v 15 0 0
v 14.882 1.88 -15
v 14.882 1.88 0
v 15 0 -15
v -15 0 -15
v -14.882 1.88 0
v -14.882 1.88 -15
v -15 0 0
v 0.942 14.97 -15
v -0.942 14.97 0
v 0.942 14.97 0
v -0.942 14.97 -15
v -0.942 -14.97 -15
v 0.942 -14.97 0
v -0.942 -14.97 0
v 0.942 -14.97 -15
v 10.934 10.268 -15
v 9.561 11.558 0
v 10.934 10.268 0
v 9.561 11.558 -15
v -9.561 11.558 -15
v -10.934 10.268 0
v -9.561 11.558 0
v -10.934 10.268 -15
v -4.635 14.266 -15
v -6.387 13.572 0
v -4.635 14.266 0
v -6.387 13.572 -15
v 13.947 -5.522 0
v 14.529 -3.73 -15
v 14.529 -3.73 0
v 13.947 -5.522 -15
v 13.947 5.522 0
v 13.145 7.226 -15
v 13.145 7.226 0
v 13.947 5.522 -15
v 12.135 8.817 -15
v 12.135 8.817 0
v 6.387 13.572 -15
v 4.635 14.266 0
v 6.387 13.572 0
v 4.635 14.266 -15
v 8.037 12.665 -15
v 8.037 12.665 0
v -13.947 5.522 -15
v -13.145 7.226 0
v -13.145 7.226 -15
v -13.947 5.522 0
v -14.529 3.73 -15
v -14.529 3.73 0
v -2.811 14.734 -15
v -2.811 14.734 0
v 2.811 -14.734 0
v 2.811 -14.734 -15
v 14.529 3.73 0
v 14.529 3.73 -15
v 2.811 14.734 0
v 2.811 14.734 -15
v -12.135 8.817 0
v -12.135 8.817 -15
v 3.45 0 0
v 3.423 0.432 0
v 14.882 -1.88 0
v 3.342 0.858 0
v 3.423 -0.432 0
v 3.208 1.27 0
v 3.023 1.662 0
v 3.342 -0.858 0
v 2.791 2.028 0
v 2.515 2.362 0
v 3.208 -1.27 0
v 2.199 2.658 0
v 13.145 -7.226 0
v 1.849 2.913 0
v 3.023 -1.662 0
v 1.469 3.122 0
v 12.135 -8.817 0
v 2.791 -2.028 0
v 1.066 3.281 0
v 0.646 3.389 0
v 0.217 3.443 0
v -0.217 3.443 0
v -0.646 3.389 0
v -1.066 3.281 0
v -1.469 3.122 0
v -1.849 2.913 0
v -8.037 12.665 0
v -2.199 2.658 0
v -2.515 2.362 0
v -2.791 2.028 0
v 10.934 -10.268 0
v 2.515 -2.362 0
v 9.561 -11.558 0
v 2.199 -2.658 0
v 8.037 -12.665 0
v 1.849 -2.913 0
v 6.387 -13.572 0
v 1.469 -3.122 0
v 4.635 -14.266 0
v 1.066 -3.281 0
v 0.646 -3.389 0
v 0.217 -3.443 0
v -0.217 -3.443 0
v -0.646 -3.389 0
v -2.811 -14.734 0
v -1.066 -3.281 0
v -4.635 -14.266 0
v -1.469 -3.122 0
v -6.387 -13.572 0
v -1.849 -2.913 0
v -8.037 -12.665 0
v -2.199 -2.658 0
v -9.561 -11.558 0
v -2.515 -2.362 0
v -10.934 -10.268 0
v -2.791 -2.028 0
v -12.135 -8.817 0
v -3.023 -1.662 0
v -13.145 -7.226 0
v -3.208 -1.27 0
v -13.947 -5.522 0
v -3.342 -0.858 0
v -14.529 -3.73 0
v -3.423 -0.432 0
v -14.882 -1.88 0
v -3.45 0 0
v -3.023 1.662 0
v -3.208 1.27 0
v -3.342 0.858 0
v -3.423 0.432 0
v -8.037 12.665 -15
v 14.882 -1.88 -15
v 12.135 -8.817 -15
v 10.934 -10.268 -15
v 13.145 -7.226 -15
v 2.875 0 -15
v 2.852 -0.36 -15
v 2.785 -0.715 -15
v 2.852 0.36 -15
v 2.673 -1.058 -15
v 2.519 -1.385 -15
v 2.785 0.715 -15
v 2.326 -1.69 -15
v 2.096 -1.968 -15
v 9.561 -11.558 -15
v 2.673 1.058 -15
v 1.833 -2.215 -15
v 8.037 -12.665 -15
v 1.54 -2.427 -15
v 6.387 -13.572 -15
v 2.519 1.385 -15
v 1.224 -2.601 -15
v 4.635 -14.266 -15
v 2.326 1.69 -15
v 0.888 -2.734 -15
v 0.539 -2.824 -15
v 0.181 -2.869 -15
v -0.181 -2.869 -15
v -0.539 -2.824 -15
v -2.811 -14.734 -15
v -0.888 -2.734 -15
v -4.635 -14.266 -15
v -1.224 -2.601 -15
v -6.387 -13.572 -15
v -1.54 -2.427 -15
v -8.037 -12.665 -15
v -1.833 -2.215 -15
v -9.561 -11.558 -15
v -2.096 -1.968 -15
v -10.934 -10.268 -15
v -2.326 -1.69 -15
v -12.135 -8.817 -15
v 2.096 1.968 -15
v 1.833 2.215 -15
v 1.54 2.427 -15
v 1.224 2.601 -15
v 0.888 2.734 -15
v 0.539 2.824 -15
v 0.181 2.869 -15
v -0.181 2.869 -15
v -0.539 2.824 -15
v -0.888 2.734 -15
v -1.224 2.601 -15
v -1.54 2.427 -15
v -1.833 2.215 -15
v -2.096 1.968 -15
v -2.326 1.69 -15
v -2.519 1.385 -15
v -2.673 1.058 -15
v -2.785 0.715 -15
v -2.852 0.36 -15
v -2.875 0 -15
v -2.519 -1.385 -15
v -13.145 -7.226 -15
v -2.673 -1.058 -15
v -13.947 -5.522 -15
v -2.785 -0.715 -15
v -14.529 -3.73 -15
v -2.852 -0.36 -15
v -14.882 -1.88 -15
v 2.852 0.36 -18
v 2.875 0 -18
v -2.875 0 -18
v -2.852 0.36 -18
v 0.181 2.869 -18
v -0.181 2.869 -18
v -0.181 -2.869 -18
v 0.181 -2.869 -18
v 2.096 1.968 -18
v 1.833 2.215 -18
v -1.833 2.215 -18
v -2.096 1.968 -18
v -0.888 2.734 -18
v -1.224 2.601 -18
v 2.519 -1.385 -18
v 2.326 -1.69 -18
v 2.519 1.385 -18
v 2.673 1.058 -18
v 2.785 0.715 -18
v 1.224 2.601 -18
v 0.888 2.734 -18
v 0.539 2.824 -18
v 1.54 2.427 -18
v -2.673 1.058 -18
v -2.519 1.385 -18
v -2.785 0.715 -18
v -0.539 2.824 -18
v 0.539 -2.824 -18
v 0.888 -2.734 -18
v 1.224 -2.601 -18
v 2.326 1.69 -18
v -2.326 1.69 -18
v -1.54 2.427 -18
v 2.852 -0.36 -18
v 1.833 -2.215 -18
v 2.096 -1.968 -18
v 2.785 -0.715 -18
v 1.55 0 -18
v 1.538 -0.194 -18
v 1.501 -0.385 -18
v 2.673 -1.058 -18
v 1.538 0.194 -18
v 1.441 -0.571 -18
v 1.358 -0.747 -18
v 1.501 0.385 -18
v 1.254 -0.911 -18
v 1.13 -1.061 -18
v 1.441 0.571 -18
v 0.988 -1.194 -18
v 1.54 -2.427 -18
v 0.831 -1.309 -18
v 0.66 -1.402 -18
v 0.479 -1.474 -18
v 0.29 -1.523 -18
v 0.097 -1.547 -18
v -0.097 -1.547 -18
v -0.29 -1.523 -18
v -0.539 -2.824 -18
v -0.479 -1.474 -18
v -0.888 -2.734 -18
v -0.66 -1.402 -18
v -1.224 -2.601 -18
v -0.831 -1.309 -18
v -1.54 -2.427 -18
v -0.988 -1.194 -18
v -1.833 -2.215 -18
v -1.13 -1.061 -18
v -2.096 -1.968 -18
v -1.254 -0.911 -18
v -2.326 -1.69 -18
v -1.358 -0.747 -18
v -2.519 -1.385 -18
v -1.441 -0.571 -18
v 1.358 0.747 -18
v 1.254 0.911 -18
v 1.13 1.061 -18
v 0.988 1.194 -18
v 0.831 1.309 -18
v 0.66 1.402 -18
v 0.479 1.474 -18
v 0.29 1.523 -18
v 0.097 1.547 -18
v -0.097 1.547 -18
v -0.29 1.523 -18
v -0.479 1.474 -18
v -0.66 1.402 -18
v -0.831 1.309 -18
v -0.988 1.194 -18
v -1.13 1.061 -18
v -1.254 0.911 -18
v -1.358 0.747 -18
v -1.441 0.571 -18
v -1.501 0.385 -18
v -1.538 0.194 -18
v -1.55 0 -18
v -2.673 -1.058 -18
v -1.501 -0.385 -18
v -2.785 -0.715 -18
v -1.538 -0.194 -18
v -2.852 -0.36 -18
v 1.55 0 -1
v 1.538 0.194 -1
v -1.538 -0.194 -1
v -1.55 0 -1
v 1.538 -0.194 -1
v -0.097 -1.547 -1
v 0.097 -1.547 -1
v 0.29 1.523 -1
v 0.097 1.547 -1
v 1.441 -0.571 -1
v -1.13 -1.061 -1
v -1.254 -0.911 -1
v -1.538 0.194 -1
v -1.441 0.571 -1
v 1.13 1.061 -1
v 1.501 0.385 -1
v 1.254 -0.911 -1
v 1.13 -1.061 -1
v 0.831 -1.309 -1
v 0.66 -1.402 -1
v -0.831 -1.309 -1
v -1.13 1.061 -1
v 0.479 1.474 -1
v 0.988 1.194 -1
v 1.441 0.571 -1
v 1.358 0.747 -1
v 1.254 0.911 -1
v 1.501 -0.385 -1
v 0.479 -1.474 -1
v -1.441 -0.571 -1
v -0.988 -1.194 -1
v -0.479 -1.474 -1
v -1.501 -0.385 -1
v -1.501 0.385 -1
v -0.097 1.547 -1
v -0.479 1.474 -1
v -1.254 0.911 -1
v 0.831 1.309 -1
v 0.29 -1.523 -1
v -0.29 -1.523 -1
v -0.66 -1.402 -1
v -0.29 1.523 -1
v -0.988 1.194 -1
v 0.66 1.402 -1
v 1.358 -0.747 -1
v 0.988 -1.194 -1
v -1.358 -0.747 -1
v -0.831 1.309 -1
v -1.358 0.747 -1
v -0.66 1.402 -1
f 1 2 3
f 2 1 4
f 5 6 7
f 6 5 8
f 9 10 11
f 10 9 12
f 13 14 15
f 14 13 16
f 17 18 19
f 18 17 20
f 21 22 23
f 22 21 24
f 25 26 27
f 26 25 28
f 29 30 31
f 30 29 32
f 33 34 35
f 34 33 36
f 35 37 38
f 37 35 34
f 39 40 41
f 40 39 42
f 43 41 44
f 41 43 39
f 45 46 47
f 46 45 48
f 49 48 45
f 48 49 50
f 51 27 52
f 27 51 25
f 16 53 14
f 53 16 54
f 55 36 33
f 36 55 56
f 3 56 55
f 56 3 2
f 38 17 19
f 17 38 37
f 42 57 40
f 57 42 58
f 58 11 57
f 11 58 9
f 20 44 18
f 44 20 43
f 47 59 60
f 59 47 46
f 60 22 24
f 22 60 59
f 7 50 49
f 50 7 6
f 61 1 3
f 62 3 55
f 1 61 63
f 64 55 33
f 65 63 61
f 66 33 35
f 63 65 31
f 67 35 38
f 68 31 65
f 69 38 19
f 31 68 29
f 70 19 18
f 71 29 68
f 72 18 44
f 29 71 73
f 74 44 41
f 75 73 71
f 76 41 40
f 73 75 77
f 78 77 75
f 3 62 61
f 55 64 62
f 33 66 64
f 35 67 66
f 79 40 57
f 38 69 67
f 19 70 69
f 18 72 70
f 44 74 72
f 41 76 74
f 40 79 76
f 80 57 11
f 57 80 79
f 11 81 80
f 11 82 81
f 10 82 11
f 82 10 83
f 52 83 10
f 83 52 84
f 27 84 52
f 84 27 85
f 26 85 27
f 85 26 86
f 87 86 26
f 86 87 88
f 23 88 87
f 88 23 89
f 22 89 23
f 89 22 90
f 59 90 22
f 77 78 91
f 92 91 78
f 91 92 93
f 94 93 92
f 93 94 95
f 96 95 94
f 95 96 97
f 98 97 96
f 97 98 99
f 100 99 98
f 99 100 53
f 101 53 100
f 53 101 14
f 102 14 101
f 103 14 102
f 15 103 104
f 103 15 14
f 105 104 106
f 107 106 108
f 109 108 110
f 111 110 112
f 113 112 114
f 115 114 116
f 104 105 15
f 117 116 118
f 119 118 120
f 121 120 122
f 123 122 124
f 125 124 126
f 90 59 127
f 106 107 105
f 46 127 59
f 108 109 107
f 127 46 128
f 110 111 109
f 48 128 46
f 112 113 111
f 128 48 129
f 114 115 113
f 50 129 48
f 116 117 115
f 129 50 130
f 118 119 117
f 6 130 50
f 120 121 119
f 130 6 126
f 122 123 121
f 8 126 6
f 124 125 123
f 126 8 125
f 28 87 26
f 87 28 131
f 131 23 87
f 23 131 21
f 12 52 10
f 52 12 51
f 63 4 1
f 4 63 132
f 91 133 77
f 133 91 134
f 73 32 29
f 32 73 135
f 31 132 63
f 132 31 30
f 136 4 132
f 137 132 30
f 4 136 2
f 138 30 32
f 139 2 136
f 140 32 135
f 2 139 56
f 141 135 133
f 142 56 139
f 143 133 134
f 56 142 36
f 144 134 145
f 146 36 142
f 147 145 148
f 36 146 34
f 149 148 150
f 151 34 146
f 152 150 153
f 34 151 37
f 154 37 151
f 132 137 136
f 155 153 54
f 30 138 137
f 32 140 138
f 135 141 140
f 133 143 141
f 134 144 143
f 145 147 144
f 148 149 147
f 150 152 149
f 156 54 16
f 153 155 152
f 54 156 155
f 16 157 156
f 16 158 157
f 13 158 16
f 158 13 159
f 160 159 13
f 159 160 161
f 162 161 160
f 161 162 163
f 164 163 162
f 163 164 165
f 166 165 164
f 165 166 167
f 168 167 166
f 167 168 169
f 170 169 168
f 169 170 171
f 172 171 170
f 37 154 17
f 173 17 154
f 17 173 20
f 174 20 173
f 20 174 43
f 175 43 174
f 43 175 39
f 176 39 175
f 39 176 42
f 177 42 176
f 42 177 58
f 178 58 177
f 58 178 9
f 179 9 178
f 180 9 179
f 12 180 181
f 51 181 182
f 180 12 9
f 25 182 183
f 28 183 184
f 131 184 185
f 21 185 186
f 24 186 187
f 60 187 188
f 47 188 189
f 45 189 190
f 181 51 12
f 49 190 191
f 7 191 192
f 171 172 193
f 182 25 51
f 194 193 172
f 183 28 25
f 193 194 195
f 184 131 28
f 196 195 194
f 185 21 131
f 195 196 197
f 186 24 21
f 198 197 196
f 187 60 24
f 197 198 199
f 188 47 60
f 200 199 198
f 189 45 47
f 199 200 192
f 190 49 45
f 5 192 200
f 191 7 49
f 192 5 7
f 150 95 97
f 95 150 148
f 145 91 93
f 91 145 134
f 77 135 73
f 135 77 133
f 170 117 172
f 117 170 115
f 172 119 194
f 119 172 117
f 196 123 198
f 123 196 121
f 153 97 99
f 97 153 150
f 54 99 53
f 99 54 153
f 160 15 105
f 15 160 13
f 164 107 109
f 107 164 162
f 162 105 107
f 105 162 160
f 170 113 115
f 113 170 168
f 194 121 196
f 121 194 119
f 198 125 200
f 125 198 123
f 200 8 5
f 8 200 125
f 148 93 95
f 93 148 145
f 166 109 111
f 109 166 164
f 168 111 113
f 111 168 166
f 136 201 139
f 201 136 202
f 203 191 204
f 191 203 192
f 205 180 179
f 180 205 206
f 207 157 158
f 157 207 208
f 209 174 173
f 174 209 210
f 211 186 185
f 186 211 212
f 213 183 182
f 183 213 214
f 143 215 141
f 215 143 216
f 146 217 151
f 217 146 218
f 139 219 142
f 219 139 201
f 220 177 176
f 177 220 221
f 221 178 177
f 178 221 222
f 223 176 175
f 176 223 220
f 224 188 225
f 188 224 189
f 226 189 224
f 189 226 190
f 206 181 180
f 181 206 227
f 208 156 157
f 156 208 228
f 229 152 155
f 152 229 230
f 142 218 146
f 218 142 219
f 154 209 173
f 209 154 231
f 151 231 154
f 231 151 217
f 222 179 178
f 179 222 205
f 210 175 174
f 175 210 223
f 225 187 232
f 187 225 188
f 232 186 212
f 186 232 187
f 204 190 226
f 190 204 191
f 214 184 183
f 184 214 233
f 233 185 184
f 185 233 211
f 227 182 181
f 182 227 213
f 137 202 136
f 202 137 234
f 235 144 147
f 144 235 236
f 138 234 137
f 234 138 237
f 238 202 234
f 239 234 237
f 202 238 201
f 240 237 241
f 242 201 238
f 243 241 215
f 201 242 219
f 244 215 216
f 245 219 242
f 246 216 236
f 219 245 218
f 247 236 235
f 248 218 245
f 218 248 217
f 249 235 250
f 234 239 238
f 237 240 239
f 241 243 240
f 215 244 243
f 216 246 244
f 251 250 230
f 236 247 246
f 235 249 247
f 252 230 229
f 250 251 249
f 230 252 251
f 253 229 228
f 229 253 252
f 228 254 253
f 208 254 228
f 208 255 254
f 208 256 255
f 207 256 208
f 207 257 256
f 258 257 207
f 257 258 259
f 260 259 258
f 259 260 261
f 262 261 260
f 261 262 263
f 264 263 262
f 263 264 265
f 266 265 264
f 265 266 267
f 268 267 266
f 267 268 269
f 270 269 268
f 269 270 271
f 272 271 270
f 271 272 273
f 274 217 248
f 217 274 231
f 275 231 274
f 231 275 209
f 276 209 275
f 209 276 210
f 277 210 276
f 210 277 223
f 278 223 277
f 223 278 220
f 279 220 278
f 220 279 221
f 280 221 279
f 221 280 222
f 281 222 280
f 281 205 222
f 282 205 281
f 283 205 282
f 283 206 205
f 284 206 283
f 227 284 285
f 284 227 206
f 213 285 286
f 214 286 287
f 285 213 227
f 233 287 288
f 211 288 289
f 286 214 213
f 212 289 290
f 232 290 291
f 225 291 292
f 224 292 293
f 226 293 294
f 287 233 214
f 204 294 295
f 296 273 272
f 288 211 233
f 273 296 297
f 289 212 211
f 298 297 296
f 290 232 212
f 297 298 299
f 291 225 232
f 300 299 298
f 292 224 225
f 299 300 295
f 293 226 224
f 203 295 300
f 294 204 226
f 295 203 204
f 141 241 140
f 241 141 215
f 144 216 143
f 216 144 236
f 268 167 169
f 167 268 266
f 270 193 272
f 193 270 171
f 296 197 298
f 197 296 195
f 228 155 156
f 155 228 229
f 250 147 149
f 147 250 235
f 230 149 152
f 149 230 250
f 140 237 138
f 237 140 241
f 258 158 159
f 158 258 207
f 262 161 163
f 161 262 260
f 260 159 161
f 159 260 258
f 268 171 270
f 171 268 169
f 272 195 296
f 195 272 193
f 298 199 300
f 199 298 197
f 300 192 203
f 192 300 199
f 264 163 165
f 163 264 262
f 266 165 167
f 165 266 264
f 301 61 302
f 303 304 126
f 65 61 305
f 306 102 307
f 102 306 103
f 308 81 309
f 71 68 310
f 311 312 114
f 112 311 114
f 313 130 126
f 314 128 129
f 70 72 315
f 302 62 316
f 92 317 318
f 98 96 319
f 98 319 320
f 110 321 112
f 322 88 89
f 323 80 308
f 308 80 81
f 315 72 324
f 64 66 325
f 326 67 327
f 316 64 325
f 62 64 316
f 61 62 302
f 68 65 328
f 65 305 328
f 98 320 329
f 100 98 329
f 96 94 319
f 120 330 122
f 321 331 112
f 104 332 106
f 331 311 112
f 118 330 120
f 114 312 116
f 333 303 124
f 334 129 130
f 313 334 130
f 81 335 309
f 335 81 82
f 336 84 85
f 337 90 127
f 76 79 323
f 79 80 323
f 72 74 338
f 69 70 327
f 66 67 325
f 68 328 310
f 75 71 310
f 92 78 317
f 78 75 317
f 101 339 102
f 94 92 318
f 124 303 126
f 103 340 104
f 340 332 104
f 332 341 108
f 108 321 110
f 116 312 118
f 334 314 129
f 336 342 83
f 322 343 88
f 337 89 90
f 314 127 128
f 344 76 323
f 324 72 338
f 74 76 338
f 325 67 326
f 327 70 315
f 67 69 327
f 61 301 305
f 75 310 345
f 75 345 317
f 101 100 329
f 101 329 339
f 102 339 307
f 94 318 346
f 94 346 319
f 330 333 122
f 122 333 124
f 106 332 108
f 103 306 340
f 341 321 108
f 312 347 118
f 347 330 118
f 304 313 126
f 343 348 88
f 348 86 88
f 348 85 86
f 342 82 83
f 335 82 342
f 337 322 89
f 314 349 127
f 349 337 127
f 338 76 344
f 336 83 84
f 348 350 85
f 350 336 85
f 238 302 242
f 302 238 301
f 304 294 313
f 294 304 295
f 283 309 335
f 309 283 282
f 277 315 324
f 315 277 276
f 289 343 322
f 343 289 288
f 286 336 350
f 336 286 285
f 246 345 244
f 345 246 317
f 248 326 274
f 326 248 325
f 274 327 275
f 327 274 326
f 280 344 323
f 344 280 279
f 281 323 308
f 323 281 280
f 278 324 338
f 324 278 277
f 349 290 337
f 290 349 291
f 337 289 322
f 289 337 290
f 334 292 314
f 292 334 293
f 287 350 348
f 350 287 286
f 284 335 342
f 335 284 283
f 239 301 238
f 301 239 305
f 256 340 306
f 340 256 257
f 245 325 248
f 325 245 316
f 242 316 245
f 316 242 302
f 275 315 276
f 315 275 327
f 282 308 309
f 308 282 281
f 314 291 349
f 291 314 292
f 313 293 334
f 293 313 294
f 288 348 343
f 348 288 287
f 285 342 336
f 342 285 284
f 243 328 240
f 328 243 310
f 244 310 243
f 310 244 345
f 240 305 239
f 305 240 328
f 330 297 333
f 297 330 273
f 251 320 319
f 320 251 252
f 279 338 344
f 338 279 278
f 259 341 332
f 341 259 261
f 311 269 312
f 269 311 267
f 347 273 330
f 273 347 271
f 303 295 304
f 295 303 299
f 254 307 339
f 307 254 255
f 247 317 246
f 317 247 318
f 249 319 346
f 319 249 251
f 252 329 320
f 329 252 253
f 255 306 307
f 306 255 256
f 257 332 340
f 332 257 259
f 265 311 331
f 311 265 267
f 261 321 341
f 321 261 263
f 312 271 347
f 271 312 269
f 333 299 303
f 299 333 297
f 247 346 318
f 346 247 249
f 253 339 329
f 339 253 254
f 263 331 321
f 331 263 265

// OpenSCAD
$fn = 50;

difference() {
	union() {
		translate(v = [0, 0, -15.0]) {
			cylinder(h = 15, r = 15.0);
		}
		#translate(v = [0, 0, -18.0]) {
			cylinder(h = 18, r = 2.875);
		}
	}
	union() {
		translate(v = [0, 0, 0]) {
			rotate(a = [0, 0, 0]) {
				difference() {
					union() {
						translate(v = [0, 0, -18.0]) {
							cylinder(h = 18, r = 1.25);
						}
						translate(v = [0, 0, -1.0]) {
							cylinder(h = 1.0, r1 = 1.55, r2 = 3.45);
						}
						translate(v = [0, 0, -18.0]) {
							cylinder(h = 18, r = 1.55);
						}
						translate(v = [0, 0, -18.0]) {
							cylinder(h = 18, r = 1.25);
						}
					}
					union();
				}
			}
		}
	}
}
